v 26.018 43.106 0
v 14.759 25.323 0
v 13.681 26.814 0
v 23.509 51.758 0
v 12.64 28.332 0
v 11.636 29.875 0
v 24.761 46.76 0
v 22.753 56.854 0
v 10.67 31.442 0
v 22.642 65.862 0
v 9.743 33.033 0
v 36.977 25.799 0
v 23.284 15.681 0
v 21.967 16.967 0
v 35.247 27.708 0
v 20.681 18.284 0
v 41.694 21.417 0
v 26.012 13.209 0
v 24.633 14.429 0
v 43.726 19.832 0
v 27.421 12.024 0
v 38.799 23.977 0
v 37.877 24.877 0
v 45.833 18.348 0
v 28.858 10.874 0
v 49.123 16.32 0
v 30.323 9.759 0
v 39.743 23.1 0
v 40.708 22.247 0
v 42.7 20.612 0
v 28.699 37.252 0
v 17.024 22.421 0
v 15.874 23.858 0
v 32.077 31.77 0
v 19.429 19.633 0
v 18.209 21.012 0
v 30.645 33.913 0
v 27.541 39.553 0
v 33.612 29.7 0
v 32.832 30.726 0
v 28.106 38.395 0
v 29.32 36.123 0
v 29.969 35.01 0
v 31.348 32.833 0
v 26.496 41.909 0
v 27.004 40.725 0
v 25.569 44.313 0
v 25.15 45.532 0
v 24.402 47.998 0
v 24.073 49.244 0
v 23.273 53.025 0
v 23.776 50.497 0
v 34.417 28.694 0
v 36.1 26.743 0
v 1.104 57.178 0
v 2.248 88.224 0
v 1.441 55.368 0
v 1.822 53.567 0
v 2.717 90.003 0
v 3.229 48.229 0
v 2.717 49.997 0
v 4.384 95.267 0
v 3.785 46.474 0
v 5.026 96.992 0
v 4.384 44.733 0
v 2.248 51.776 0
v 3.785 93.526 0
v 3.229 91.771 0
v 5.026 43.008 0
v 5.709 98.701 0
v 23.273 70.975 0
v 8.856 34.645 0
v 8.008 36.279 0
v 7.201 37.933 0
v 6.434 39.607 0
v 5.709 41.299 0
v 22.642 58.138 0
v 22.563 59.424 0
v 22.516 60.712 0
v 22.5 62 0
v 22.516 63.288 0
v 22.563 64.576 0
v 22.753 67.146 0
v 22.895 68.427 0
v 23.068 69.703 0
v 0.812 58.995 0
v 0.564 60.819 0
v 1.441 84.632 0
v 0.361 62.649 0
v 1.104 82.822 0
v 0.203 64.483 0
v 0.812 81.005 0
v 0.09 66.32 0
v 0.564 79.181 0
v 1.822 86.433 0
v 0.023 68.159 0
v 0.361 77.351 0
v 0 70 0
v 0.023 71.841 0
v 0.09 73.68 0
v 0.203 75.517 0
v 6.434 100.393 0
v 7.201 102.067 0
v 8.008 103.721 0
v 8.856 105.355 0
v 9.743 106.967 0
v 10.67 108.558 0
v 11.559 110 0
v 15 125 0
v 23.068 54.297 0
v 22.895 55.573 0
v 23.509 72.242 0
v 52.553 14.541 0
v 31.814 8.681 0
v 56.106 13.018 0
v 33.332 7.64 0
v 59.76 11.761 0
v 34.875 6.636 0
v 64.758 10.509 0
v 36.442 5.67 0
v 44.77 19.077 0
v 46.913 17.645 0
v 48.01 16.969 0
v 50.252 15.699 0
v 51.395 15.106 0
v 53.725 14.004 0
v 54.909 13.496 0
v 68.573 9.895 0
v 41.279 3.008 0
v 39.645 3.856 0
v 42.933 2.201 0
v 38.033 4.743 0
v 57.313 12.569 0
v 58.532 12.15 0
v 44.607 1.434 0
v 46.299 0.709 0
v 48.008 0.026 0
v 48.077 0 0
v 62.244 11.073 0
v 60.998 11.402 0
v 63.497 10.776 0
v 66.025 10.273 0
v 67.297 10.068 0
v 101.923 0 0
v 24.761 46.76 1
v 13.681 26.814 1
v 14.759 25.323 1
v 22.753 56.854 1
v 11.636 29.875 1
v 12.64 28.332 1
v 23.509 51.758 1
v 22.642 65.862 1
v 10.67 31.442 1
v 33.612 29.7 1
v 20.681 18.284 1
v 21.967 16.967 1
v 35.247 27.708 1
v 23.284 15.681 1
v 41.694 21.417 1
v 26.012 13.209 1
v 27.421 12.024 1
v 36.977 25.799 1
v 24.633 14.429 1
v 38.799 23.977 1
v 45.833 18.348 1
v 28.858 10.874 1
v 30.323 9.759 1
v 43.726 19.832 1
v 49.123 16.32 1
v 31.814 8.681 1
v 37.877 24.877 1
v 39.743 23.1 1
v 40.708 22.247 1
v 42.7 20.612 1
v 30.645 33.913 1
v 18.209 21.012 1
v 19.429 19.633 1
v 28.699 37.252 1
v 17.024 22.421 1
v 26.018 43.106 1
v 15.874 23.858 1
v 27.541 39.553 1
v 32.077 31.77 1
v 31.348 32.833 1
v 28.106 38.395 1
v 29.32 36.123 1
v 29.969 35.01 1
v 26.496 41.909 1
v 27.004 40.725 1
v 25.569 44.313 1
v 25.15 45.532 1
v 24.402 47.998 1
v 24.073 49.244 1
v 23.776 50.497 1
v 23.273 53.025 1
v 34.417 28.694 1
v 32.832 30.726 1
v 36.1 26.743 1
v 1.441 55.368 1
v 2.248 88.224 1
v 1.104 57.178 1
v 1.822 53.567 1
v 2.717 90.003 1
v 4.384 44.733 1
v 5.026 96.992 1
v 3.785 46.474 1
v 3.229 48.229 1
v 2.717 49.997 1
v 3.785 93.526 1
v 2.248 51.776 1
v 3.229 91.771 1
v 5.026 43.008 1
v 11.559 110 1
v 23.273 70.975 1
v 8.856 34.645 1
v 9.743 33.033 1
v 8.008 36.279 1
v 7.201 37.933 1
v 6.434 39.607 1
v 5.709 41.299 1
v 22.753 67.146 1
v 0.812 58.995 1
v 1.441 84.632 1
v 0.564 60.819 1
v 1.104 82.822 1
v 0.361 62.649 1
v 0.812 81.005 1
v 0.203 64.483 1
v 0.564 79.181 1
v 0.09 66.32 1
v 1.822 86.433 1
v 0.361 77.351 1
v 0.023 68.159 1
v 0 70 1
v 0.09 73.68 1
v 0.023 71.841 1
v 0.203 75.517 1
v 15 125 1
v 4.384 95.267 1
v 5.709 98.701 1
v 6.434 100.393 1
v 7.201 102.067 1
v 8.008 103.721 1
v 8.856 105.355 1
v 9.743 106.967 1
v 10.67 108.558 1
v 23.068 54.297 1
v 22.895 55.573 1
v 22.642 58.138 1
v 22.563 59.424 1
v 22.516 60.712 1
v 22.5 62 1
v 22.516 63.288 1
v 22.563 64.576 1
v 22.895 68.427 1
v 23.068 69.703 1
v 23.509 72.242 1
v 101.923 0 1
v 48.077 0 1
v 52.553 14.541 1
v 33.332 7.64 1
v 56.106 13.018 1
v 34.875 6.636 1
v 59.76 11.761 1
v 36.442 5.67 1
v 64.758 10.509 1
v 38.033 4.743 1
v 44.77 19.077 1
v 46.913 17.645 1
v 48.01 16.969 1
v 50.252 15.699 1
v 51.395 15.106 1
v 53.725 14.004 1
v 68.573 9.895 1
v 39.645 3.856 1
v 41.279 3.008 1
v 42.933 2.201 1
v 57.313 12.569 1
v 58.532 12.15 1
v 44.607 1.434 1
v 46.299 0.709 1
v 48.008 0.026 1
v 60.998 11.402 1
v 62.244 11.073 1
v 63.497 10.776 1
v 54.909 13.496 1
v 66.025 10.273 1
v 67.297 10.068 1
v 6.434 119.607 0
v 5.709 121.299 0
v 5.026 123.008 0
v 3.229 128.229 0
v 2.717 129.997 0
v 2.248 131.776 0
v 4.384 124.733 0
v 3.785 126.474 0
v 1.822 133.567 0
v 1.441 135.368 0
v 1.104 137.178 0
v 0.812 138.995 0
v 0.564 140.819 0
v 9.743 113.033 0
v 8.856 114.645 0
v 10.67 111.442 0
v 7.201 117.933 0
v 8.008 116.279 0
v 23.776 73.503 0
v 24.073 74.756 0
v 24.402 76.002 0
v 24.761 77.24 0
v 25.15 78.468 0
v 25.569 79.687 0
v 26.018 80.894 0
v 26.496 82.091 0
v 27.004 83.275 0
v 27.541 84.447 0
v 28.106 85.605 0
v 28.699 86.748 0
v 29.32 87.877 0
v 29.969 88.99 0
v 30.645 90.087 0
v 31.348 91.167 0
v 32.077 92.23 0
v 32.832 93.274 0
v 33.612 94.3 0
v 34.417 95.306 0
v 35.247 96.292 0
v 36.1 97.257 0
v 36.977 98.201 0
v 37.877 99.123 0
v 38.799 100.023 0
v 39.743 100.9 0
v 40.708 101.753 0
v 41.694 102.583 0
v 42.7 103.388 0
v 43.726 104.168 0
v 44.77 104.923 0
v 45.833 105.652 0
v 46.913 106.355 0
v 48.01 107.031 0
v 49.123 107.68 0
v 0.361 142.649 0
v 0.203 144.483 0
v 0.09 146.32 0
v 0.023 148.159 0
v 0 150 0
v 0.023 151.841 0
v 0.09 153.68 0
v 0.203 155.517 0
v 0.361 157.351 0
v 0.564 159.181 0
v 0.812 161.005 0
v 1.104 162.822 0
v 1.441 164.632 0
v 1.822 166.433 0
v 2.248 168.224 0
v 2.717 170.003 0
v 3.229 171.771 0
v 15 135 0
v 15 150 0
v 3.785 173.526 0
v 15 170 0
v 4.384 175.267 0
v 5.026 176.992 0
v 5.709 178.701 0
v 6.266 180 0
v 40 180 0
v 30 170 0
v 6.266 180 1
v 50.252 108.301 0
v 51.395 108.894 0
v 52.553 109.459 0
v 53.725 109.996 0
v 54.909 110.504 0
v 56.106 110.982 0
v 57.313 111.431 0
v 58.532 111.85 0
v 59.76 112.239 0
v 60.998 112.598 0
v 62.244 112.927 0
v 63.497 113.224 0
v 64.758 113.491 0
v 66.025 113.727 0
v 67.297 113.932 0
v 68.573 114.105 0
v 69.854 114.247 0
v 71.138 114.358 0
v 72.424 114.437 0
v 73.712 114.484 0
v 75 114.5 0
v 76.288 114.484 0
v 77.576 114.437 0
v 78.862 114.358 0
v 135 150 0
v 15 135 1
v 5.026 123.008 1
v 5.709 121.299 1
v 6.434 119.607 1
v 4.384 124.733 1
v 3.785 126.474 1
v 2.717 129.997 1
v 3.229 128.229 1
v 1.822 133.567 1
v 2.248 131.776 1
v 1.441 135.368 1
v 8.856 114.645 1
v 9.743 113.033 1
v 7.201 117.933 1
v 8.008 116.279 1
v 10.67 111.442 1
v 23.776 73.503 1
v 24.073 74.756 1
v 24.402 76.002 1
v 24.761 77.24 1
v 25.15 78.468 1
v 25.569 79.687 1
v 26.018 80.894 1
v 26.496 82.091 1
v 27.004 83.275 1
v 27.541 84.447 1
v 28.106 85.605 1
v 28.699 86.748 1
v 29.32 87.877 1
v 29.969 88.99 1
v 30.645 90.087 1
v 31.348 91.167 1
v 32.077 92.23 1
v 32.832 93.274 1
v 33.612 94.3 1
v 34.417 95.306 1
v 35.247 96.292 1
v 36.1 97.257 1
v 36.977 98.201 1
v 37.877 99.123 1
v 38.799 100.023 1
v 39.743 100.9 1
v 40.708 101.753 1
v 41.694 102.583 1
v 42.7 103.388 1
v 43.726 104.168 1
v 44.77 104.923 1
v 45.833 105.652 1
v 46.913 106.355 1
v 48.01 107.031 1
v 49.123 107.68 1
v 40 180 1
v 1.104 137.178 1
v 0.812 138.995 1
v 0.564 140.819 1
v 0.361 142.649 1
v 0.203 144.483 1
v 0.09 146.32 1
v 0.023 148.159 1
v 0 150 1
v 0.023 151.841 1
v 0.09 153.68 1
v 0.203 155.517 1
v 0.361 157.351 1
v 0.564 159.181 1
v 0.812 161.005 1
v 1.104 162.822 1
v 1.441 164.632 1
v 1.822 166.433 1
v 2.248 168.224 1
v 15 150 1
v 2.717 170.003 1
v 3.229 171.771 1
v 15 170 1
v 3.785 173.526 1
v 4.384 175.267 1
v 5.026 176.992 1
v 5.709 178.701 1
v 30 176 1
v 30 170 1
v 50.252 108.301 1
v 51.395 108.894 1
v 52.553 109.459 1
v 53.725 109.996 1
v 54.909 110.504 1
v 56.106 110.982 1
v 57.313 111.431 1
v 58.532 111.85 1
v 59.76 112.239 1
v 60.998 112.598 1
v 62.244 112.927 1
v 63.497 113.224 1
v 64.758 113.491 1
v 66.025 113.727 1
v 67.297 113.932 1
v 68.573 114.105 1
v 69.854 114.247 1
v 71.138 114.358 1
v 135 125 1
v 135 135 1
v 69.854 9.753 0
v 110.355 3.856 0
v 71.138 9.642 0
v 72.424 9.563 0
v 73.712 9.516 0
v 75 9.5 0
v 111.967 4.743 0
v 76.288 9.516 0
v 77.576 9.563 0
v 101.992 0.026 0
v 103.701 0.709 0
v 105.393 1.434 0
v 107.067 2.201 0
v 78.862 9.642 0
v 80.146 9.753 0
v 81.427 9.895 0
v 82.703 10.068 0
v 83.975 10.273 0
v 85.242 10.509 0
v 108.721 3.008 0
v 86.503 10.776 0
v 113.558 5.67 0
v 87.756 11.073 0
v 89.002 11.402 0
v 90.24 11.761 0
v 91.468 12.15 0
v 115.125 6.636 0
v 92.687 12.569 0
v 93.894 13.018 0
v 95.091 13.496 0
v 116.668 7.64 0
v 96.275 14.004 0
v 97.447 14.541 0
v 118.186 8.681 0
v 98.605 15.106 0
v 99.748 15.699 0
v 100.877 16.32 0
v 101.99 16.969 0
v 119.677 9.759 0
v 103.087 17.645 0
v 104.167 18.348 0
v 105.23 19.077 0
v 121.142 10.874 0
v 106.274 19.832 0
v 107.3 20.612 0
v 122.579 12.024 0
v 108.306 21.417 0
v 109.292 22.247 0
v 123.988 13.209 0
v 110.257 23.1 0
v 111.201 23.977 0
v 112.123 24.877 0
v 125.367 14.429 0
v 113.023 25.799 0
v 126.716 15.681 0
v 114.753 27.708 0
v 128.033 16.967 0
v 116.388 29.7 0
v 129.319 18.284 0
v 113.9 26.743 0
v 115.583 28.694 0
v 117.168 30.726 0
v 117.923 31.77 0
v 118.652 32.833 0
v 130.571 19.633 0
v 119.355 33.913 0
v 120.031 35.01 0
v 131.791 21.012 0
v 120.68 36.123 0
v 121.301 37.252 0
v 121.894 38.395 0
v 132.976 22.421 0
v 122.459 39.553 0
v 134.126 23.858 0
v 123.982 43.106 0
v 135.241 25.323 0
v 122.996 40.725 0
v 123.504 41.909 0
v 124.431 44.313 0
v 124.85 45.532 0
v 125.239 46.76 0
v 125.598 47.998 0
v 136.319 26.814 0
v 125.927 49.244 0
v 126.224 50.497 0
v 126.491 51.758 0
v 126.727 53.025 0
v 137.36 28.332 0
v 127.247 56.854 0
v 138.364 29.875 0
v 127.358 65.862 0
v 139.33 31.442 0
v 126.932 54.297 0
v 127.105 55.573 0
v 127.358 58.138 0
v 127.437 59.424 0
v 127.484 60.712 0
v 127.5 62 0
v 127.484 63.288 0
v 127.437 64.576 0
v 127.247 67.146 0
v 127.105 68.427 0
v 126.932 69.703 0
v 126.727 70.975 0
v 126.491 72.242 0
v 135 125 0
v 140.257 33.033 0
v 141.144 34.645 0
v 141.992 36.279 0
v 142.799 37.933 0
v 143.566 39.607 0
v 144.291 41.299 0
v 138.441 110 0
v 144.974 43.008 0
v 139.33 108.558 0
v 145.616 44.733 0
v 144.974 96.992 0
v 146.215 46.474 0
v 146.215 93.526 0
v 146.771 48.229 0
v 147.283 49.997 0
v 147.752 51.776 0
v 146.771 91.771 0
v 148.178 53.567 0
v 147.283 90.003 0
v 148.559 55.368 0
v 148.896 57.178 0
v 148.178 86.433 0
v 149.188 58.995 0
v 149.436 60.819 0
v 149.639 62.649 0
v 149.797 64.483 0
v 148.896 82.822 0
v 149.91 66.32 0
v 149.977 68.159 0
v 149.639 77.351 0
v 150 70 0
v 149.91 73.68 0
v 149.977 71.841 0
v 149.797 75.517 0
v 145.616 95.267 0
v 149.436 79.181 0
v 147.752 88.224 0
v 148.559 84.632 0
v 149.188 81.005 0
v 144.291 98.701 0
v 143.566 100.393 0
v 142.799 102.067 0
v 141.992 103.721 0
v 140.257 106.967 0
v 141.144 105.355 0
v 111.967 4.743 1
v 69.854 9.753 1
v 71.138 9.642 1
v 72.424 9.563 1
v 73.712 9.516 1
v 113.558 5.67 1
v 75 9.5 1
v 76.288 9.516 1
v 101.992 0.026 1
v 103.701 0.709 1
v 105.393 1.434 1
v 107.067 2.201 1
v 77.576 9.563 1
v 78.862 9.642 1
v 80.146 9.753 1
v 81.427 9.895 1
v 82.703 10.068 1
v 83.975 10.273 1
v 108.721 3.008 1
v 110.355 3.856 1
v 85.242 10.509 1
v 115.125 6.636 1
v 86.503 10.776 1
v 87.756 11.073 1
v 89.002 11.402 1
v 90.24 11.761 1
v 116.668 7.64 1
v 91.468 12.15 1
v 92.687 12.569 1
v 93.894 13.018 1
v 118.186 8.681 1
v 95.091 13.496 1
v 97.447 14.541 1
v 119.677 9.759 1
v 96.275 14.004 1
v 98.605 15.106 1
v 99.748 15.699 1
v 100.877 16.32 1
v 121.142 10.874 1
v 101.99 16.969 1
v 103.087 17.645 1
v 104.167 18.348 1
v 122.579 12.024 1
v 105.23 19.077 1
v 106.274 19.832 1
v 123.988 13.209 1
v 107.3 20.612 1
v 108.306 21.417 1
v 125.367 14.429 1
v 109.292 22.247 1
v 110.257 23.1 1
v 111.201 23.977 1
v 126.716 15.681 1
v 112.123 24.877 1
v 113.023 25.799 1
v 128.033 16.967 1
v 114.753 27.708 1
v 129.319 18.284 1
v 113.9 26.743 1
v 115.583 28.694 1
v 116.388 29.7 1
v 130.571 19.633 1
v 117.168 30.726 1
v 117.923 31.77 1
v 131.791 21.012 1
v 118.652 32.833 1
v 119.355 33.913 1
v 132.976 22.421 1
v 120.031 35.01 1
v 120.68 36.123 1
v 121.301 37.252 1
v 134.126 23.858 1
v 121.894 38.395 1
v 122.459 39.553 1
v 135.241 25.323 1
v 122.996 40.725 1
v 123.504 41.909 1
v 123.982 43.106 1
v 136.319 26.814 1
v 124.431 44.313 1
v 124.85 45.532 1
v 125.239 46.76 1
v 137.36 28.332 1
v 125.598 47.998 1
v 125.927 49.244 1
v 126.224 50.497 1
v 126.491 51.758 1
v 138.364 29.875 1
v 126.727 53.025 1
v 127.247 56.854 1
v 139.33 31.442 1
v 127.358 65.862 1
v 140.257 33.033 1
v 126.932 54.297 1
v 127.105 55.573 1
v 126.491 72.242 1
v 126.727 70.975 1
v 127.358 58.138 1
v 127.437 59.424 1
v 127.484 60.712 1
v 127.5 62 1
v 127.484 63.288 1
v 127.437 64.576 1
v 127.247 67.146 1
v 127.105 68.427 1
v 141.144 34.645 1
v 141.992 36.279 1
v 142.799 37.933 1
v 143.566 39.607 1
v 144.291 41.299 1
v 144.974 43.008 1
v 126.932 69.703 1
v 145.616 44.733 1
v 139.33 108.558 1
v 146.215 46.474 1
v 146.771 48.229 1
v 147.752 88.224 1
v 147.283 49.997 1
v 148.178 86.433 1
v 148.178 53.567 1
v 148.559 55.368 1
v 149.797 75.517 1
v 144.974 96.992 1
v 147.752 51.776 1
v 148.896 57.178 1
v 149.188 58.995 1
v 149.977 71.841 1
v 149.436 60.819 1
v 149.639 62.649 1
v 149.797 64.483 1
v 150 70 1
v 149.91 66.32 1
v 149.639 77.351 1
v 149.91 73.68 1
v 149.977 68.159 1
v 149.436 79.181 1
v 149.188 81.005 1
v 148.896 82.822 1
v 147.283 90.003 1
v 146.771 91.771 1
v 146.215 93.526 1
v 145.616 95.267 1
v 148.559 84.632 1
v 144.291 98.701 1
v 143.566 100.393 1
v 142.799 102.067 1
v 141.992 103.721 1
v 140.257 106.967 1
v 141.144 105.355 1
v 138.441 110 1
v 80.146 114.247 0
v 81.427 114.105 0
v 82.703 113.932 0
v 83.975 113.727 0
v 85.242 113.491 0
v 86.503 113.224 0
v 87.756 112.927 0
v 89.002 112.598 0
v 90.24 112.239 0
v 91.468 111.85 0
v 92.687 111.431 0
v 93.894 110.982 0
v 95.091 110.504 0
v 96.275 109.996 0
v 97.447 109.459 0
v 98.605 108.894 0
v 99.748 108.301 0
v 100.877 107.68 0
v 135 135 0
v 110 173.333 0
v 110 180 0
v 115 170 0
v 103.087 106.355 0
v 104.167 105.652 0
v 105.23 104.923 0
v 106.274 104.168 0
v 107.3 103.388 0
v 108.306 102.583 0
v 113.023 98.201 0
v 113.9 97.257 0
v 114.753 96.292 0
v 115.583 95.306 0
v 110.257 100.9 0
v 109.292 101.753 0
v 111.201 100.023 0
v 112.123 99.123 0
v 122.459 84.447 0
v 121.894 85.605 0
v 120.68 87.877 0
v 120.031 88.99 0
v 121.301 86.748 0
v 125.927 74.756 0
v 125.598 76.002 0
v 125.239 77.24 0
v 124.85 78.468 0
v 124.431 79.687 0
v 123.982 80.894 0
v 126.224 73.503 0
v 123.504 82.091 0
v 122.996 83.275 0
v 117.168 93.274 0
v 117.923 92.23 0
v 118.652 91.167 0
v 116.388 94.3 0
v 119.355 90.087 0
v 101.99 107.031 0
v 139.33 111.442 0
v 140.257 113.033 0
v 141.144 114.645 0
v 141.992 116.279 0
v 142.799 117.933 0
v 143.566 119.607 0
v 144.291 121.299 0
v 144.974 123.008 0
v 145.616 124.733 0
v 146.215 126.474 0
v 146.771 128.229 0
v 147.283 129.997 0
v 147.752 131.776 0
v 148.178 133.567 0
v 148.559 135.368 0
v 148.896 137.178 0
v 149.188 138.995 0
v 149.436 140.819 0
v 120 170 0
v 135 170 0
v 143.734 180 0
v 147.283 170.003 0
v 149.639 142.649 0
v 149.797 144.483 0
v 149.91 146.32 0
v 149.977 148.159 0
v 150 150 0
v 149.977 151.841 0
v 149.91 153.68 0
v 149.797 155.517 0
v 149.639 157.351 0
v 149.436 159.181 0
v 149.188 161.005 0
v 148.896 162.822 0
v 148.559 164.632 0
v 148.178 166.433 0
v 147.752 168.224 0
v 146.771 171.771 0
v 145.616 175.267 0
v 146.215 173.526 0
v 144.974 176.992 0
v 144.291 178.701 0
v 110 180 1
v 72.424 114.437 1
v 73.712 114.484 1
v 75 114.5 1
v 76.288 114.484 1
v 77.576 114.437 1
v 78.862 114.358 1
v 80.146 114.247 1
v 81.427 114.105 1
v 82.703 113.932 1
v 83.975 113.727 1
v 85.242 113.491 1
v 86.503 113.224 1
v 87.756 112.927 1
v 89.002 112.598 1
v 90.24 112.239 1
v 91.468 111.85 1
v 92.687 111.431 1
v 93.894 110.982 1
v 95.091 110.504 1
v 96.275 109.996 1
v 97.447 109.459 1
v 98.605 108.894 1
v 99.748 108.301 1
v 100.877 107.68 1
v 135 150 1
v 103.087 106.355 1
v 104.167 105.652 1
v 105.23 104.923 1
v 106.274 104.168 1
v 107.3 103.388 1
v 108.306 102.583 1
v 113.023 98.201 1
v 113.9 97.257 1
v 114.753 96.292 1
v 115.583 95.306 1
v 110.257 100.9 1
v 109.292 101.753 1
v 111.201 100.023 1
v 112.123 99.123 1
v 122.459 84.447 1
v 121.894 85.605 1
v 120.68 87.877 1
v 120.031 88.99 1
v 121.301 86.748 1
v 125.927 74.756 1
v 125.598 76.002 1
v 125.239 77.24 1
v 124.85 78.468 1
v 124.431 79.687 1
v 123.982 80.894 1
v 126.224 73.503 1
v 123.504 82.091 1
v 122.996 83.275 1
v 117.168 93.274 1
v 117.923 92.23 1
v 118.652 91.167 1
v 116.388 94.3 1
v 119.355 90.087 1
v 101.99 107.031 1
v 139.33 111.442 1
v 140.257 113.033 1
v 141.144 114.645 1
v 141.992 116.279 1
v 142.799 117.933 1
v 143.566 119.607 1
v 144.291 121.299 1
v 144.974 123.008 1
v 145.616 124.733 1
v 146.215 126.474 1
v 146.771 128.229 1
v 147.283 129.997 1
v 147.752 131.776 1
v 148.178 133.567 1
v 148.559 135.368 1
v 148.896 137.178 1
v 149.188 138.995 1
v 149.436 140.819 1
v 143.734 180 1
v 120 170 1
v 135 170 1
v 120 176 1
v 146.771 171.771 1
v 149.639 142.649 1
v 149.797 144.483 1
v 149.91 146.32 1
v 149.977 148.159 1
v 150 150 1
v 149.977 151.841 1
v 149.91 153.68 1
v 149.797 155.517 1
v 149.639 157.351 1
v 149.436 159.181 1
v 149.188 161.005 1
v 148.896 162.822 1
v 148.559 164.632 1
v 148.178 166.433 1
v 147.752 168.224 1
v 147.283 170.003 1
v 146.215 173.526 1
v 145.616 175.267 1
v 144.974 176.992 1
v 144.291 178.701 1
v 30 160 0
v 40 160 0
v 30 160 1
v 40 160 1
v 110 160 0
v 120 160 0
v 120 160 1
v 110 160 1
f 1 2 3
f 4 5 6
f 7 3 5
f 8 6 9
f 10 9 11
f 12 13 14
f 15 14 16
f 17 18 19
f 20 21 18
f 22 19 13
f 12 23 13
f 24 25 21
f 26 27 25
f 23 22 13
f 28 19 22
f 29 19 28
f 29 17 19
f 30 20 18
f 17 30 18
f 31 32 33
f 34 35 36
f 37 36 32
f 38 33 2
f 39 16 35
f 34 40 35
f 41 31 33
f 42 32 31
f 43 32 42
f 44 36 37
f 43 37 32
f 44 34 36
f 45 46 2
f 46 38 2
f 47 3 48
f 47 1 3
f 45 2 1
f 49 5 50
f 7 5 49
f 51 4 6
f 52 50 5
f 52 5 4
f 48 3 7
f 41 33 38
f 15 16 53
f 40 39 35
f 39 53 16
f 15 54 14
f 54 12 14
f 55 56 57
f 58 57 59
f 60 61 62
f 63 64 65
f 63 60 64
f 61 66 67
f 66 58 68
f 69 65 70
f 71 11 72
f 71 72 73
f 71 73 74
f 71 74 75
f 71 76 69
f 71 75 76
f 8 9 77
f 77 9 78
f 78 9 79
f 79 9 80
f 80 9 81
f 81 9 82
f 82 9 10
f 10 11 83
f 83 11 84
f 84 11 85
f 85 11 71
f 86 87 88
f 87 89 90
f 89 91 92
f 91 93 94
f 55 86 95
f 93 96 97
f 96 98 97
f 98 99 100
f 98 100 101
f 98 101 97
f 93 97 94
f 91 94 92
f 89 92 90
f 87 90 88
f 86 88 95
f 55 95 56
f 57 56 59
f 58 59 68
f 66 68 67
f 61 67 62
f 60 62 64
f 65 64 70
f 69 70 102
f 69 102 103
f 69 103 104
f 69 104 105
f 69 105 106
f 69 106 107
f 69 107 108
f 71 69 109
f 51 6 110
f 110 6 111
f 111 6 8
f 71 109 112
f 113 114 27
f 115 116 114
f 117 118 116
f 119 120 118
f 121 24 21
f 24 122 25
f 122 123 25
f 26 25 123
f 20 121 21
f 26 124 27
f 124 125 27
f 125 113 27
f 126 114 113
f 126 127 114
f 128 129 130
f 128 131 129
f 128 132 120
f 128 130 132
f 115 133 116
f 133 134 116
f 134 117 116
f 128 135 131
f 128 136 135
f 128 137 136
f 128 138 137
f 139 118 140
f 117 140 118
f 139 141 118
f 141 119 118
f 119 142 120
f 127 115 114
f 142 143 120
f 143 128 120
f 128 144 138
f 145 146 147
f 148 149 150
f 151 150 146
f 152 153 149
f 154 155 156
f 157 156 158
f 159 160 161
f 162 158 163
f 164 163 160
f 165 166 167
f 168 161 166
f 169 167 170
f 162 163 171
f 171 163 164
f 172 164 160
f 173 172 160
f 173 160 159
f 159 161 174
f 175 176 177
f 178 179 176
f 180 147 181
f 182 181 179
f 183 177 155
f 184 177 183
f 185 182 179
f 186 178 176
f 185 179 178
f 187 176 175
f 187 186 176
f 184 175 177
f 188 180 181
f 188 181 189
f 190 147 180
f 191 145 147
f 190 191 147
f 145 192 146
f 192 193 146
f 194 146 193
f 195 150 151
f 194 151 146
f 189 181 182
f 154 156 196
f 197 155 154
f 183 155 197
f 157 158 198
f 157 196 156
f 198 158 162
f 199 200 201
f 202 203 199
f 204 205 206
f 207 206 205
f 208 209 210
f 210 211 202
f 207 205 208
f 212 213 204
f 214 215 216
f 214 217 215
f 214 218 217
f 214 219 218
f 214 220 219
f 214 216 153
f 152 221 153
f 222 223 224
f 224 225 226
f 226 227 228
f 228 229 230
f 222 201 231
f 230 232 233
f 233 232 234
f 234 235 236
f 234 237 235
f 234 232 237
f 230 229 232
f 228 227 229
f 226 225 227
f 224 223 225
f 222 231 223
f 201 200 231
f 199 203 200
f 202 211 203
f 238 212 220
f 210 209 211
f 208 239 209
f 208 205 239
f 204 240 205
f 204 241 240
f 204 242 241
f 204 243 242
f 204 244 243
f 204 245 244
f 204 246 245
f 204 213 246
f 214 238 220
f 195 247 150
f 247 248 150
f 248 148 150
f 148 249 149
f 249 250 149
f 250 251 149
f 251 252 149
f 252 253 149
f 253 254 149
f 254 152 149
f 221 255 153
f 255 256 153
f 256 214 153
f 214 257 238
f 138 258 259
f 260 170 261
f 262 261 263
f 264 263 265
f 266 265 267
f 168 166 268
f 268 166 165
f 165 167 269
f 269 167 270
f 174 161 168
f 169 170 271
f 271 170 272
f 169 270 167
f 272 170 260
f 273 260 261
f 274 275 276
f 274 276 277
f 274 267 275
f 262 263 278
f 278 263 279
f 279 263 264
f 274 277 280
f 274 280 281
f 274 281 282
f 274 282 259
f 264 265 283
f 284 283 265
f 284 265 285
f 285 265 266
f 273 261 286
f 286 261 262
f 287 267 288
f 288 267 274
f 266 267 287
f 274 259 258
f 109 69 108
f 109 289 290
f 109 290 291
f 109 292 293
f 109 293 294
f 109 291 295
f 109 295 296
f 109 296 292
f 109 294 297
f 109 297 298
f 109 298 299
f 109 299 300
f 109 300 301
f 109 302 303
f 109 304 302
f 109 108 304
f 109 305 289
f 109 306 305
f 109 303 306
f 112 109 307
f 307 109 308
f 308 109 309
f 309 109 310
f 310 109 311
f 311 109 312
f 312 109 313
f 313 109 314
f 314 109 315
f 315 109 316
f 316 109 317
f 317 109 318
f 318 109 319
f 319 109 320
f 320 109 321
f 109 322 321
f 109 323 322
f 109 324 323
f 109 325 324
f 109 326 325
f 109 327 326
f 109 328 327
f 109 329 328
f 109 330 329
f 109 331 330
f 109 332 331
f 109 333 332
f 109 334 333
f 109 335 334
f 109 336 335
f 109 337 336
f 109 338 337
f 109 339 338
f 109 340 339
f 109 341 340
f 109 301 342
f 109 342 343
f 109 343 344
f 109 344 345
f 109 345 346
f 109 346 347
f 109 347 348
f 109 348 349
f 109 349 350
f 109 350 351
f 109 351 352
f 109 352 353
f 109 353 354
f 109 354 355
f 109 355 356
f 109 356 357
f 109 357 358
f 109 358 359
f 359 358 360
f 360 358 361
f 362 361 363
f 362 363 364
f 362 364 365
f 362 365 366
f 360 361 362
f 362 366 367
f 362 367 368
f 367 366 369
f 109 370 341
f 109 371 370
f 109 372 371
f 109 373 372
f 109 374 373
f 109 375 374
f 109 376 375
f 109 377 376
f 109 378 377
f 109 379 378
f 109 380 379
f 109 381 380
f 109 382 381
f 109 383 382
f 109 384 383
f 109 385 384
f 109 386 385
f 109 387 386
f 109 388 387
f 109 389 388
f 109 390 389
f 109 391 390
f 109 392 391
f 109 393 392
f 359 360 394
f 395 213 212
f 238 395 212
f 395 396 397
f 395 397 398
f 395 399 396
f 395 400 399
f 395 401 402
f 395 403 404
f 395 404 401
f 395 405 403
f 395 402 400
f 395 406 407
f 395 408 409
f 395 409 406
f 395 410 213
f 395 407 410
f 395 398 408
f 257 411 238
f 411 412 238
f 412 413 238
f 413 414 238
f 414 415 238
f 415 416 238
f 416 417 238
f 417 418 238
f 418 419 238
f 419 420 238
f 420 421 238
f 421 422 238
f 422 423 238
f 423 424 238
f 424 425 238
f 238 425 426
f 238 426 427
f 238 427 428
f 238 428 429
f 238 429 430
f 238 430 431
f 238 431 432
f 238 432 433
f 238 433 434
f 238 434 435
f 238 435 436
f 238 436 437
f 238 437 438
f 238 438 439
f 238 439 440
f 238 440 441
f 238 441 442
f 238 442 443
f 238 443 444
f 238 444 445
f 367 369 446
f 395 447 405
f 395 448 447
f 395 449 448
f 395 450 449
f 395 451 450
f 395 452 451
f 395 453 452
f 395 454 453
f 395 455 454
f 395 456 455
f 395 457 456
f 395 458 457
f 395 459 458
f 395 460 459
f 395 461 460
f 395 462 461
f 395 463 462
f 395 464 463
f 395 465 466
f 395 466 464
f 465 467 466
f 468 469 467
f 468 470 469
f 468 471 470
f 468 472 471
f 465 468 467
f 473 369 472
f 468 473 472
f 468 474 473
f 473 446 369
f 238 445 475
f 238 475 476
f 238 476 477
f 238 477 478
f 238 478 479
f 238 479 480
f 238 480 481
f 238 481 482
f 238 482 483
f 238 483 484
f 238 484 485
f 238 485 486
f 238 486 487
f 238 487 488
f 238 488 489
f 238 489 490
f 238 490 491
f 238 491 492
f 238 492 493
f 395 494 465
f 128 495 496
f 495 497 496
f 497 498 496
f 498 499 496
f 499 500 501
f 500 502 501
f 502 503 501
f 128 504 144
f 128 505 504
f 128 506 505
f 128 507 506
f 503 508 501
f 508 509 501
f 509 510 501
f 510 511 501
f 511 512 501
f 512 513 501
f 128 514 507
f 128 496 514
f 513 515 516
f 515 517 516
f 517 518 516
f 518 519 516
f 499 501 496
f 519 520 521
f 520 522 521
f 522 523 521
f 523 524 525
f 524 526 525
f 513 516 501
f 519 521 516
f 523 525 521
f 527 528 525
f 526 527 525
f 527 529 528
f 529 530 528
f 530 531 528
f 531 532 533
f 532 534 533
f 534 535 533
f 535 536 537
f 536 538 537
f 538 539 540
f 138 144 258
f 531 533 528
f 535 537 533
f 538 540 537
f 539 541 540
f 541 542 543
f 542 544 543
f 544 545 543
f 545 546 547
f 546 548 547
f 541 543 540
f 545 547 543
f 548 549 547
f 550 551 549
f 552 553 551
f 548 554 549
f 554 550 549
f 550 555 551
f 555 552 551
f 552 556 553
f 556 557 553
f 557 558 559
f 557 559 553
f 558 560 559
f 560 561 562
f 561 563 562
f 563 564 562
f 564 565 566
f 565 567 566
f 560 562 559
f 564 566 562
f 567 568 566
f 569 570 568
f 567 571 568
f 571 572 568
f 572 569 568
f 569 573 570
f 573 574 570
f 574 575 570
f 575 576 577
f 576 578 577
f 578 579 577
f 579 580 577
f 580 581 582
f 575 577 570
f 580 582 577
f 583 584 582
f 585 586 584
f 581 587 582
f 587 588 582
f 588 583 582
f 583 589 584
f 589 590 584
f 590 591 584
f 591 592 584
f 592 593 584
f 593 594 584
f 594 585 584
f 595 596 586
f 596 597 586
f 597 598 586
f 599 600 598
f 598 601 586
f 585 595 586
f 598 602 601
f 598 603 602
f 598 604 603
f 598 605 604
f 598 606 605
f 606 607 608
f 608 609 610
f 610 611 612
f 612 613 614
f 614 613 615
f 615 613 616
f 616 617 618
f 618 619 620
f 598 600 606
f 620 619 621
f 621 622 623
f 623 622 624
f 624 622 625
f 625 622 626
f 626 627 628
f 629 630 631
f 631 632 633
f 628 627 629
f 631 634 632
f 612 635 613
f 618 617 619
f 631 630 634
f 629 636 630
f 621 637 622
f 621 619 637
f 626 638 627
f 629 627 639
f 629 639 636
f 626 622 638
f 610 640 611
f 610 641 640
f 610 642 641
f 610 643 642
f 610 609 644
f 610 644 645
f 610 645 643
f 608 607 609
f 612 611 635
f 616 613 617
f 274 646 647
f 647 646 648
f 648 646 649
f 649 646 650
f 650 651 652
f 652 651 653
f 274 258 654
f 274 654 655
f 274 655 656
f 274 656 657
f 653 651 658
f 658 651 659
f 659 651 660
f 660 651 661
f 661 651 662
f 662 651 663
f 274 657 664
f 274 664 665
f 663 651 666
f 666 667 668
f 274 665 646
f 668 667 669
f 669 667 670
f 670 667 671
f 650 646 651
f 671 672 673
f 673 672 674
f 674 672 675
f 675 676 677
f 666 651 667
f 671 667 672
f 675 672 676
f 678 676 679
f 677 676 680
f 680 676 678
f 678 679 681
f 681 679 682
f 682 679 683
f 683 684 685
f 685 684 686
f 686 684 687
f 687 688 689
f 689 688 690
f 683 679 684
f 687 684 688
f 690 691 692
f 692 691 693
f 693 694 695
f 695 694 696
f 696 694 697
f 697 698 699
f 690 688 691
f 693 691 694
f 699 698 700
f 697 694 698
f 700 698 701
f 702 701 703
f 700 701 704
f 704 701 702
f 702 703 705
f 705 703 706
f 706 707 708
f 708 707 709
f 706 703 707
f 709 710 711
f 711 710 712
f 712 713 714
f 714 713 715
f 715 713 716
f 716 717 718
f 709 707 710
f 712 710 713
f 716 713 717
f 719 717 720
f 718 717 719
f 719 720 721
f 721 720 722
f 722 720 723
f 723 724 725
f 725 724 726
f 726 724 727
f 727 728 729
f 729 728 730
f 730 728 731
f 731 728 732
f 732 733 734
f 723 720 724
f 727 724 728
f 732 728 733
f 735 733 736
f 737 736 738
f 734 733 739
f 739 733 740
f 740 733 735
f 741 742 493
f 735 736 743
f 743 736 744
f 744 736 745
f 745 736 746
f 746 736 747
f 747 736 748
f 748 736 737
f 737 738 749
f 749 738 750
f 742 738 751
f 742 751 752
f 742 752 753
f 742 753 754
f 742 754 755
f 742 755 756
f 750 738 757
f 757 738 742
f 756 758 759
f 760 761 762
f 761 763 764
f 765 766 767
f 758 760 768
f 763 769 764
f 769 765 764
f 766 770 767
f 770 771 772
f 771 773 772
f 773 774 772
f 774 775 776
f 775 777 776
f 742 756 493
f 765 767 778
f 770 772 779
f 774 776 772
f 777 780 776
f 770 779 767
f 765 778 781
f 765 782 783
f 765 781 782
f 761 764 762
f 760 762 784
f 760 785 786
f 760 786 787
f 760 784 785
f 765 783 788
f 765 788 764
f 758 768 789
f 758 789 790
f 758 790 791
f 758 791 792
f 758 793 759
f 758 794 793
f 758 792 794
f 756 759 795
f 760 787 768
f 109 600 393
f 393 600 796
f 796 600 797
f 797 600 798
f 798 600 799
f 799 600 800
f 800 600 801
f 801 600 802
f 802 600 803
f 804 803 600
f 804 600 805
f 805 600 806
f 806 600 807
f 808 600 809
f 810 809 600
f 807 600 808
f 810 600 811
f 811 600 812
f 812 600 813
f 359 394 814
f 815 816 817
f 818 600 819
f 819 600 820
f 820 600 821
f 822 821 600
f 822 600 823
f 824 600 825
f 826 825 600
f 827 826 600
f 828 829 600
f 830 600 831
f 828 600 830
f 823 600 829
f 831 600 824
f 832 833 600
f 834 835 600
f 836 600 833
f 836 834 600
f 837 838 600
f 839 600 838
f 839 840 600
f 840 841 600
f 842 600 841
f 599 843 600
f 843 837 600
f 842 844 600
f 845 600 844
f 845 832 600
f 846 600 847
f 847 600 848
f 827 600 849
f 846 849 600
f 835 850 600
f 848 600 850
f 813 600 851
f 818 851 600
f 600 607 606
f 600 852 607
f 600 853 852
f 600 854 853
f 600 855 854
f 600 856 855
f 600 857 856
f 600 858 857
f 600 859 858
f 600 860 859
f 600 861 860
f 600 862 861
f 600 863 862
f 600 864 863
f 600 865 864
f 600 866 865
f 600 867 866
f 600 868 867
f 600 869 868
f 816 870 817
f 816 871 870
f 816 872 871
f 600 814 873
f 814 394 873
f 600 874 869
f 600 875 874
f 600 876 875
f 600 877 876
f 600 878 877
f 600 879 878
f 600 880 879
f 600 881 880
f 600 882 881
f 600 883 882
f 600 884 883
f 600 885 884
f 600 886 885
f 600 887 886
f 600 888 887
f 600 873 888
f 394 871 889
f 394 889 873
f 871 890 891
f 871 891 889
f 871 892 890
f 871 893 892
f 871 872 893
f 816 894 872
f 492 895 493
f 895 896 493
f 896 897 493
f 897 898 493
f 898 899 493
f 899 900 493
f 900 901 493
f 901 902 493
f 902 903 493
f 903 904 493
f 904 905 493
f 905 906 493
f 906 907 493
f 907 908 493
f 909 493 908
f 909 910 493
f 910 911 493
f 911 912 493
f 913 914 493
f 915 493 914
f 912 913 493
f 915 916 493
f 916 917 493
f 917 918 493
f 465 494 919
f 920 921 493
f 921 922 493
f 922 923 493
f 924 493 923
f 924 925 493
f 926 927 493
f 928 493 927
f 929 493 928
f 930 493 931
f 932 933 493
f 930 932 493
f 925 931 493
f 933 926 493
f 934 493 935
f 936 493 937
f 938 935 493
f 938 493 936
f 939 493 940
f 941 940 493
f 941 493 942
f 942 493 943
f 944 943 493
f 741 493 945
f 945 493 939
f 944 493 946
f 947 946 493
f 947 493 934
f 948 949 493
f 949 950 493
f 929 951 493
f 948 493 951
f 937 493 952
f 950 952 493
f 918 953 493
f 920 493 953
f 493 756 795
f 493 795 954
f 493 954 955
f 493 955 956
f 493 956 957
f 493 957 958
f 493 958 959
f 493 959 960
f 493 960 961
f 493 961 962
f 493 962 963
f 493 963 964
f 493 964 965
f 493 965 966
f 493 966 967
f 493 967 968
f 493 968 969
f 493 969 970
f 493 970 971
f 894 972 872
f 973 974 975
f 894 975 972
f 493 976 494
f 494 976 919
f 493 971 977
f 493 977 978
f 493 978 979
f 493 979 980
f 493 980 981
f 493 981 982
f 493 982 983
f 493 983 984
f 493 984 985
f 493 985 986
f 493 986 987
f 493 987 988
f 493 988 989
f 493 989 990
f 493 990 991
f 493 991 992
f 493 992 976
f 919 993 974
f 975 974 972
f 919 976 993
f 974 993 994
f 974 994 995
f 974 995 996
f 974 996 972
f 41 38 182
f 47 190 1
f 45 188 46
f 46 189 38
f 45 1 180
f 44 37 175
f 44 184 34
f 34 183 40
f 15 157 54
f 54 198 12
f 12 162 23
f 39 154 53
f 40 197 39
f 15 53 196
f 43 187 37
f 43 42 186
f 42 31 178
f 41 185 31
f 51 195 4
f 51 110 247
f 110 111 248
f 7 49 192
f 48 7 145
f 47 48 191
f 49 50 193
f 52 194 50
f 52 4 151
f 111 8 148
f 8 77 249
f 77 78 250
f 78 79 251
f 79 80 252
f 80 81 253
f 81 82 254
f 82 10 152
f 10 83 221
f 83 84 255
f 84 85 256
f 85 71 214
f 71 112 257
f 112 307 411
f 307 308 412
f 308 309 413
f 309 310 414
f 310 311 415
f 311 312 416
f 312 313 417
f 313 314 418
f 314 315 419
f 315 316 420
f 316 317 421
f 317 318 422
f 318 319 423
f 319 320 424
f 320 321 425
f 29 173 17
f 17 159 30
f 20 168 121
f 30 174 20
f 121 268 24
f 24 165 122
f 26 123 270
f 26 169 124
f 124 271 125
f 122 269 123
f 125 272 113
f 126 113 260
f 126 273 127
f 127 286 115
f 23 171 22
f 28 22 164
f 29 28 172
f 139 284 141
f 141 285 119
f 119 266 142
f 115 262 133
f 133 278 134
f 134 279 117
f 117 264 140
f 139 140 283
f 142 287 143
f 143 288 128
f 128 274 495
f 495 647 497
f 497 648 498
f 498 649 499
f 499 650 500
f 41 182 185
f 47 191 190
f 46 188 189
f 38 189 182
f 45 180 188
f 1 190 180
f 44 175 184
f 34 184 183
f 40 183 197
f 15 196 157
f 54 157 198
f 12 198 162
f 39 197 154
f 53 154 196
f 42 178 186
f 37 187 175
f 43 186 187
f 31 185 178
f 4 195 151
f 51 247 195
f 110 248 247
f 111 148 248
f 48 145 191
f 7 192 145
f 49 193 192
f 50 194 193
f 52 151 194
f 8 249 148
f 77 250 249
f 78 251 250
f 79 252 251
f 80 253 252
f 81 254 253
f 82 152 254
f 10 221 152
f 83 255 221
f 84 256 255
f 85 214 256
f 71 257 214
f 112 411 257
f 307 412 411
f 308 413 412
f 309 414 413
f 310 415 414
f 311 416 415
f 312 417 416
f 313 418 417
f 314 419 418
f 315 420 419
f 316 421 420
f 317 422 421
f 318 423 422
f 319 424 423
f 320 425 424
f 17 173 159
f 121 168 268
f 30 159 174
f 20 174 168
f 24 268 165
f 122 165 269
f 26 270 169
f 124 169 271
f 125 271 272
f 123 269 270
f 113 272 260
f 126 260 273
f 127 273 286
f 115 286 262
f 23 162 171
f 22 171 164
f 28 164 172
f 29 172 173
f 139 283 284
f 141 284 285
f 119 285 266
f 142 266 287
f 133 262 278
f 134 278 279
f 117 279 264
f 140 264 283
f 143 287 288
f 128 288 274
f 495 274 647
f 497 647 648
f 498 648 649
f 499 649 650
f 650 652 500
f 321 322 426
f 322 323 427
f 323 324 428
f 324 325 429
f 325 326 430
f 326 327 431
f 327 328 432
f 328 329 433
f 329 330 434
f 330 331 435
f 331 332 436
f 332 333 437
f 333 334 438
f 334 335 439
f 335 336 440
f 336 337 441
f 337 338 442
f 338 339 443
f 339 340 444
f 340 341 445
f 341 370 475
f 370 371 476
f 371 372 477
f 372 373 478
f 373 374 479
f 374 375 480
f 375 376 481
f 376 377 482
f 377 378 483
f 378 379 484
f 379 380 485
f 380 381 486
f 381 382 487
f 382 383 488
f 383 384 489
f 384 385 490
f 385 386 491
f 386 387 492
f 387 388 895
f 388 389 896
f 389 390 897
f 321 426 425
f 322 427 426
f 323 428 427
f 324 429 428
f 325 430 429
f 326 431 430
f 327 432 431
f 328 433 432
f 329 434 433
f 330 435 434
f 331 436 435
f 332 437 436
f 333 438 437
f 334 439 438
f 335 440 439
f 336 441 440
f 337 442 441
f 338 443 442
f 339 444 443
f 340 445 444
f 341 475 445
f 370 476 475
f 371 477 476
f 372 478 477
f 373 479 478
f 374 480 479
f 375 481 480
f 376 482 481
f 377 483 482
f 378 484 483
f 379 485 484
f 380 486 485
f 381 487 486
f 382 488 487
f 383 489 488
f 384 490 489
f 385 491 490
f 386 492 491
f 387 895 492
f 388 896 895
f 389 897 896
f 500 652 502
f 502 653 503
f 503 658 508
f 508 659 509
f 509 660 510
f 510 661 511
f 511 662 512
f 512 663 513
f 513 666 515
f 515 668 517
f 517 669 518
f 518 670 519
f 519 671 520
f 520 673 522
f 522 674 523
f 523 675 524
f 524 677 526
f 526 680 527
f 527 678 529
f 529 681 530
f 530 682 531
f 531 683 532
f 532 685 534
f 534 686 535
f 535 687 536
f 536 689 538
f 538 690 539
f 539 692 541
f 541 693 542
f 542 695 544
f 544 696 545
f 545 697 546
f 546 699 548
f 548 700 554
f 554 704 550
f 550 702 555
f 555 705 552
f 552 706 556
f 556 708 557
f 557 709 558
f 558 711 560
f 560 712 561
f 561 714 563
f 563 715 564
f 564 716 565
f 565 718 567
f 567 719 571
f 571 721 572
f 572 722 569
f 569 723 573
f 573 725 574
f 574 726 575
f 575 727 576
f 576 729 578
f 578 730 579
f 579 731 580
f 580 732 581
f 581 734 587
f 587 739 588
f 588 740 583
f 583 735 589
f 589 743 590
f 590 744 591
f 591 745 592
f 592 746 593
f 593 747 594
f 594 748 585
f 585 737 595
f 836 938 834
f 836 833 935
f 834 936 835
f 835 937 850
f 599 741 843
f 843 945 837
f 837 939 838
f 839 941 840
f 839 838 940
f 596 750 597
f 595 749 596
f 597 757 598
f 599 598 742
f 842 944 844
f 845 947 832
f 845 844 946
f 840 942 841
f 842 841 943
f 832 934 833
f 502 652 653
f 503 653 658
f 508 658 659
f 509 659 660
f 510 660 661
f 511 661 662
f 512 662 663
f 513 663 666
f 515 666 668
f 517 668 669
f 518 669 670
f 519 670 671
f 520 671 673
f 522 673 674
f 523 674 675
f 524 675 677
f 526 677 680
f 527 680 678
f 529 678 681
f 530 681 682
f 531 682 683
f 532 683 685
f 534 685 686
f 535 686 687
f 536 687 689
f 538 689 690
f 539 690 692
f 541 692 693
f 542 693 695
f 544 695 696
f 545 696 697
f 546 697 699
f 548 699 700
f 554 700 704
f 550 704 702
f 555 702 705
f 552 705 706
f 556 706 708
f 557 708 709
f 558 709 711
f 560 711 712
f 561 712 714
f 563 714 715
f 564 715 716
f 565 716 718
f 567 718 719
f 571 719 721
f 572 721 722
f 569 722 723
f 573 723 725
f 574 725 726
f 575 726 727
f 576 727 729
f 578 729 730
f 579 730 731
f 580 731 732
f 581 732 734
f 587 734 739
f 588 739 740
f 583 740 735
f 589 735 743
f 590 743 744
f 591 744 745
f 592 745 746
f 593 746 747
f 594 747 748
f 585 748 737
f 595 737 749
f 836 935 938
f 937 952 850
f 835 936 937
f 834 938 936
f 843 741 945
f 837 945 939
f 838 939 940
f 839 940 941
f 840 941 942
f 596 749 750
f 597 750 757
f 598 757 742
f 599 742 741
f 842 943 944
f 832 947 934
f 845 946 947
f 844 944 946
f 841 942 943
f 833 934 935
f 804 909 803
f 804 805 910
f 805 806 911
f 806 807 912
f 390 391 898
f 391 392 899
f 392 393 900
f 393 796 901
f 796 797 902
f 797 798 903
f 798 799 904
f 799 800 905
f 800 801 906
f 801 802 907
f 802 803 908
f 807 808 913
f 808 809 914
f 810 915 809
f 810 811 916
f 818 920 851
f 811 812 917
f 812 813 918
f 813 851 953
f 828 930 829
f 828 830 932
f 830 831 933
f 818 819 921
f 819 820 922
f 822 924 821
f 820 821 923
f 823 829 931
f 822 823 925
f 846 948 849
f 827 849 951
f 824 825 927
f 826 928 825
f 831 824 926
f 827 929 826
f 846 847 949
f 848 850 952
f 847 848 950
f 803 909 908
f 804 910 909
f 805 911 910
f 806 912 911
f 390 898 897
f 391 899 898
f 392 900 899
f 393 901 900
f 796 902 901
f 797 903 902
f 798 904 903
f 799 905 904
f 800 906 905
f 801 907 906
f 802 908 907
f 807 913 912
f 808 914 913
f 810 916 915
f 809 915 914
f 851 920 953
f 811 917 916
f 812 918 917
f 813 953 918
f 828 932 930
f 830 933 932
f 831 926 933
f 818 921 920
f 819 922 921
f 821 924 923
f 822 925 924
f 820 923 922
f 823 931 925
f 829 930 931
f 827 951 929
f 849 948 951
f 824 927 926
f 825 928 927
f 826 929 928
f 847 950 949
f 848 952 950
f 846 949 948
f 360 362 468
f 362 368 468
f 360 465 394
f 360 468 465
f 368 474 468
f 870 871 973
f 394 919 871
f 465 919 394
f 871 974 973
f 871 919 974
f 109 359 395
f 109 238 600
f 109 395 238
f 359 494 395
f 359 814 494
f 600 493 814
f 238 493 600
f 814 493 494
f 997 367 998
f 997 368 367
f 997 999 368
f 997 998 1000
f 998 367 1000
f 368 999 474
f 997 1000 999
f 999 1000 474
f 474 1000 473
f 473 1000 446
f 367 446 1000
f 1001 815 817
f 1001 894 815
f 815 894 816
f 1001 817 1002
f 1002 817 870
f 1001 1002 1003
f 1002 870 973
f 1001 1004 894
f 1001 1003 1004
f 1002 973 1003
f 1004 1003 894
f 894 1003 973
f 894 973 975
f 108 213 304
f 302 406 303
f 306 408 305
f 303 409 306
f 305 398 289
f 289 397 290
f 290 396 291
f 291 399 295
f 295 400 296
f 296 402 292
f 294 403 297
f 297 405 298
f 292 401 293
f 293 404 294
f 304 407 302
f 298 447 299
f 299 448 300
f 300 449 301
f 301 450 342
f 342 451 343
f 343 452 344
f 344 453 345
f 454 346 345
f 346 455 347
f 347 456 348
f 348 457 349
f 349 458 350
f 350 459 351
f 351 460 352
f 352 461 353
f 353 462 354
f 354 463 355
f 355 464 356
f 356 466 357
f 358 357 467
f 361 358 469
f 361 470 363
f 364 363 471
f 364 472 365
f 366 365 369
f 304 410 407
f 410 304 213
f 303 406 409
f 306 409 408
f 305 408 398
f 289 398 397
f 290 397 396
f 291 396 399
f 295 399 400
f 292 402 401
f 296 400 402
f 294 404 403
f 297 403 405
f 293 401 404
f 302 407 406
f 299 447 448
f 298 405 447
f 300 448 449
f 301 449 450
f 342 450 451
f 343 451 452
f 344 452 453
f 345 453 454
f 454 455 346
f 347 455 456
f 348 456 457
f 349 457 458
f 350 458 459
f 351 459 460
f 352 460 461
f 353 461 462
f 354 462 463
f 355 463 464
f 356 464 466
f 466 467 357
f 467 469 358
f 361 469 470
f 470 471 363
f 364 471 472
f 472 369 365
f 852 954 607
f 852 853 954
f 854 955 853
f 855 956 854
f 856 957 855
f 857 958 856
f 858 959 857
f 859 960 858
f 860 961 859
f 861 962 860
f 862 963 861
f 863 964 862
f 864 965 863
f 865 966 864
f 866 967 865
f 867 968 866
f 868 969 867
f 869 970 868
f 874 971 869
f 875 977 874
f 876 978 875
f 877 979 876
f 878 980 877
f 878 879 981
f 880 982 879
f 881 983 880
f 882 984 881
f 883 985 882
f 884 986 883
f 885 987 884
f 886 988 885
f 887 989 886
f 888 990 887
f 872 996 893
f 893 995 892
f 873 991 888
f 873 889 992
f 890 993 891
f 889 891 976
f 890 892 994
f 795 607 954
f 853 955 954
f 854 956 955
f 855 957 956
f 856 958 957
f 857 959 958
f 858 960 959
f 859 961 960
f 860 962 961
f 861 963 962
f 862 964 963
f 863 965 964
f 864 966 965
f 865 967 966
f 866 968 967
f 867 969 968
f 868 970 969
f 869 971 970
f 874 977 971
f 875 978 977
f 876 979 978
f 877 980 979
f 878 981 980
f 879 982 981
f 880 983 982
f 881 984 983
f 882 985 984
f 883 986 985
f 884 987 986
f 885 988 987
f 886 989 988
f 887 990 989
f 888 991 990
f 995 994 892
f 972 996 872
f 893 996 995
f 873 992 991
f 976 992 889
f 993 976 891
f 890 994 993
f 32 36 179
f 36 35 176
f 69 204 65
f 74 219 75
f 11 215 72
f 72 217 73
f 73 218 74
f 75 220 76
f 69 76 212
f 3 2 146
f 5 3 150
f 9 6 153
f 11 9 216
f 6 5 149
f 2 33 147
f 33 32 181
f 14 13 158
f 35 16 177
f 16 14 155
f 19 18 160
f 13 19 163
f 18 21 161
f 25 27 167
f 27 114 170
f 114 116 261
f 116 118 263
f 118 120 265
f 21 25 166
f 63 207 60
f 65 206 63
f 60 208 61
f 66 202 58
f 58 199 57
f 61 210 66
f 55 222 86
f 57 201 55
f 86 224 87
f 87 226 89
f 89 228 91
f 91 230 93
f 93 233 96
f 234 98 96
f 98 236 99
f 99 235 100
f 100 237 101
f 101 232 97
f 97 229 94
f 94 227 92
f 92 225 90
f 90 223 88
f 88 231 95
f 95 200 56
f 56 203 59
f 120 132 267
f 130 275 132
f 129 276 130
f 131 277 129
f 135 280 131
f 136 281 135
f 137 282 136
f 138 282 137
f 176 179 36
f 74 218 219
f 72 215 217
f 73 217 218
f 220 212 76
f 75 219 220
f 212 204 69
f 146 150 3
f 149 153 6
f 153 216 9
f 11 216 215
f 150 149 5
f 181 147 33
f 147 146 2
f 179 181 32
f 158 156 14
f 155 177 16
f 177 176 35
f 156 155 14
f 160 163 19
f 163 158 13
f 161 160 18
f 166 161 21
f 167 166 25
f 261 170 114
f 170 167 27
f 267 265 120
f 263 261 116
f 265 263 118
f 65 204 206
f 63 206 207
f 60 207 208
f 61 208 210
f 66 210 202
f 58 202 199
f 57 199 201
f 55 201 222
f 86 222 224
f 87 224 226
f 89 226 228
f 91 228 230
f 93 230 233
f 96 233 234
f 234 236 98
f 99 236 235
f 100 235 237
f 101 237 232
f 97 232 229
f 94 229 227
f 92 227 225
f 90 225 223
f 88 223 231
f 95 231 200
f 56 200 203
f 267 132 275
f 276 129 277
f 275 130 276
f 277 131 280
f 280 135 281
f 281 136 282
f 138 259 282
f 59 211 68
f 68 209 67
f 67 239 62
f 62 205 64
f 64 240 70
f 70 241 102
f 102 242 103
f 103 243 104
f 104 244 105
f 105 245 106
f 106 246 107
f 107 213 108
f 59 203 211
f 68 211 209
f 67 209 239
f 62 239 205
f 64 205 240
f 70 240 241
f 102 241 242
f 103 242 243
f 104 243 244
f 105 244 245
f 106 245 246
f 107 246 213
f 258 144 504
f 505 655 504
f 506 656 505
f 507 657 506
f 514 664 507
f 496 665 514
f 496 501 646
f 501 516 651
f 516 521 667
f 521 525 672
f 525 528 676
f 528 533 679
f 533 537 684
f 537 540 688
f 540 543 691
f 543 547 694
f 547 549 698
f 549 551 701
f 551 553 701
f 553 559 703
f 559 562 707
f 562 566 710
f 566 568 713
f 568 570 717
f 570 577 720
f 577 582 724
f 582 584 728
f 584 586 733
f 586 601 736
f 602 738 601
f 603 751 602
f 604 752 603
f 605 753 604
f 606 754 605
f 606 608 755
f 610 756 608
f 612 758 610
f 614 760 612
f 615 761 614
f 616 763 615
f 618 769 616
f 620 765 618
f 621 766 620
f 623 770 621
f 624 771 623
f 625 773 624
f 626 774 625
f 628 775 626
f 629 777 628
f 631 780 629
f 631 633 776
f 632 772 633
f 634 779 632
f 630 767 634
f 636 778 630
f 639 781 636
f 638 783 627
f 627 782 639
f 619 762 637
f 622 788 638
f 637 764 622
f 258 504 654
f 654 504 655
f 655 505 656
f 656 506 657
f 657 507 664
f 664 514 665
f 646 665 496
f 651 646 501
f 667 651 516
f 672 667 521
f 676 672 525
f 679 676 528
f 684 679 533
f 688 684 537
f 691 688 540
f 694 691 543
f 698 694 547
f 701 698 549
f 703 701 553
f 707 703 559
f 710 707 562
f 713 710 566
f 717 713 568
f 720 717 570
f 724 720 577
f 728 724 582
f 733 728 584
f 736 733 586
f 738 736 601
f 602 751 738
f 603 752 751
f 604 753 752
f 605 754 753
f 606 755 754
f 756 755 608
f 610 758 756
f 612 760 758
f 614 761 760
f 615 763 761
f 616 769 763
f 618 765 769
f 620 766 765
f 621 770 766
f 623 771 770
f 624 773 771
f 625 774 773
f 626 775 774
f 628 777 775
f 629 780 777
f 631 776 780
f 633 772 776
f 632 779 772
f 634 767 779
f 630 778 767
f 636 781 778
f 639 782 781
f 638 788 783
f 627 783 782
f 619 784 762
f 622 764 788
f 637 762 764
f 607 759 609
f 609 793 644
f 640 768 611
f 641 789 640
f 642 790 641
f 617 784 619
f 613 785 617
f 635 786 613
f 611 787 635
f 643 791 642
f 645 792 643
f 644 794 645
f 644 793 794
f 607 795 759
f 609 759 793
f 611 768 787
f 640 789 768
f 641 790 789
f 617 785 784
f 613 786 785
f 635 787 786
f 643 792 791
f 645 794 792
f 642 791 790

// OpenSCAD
$fn=256;
width = 150;

module base() {
difference() {
  union() {
    cube([width,180,1]); 
    //translate([(width-30)/2,160,-1]) cube([30,20,5]); 
  }
  
  translate([width/2,62,0]) translate([0,0,-1]) cylinder(d =105, h = 46);
  
 
  translate([(width-70)/2,160,-1]) cube([70,40,50]);  
  translate([(width-120)/2,150,-1]) cube([120,20,50]);
  
    translate([(width-120)/2,125,-1]) cube([120,10,50]);
}

translate([(width-10)/2-40,160,0]) cube([10,20,1]);
translate([(width-10)/2+40,160,0]) cube([10,20,1]);  
}

intersection() {
base();

union() {
translate([width/2,150,0]) cylinder(d=150, h = 1);
translate([width/2,70,0]) cylinder(d=150, h = 1);
}
}
